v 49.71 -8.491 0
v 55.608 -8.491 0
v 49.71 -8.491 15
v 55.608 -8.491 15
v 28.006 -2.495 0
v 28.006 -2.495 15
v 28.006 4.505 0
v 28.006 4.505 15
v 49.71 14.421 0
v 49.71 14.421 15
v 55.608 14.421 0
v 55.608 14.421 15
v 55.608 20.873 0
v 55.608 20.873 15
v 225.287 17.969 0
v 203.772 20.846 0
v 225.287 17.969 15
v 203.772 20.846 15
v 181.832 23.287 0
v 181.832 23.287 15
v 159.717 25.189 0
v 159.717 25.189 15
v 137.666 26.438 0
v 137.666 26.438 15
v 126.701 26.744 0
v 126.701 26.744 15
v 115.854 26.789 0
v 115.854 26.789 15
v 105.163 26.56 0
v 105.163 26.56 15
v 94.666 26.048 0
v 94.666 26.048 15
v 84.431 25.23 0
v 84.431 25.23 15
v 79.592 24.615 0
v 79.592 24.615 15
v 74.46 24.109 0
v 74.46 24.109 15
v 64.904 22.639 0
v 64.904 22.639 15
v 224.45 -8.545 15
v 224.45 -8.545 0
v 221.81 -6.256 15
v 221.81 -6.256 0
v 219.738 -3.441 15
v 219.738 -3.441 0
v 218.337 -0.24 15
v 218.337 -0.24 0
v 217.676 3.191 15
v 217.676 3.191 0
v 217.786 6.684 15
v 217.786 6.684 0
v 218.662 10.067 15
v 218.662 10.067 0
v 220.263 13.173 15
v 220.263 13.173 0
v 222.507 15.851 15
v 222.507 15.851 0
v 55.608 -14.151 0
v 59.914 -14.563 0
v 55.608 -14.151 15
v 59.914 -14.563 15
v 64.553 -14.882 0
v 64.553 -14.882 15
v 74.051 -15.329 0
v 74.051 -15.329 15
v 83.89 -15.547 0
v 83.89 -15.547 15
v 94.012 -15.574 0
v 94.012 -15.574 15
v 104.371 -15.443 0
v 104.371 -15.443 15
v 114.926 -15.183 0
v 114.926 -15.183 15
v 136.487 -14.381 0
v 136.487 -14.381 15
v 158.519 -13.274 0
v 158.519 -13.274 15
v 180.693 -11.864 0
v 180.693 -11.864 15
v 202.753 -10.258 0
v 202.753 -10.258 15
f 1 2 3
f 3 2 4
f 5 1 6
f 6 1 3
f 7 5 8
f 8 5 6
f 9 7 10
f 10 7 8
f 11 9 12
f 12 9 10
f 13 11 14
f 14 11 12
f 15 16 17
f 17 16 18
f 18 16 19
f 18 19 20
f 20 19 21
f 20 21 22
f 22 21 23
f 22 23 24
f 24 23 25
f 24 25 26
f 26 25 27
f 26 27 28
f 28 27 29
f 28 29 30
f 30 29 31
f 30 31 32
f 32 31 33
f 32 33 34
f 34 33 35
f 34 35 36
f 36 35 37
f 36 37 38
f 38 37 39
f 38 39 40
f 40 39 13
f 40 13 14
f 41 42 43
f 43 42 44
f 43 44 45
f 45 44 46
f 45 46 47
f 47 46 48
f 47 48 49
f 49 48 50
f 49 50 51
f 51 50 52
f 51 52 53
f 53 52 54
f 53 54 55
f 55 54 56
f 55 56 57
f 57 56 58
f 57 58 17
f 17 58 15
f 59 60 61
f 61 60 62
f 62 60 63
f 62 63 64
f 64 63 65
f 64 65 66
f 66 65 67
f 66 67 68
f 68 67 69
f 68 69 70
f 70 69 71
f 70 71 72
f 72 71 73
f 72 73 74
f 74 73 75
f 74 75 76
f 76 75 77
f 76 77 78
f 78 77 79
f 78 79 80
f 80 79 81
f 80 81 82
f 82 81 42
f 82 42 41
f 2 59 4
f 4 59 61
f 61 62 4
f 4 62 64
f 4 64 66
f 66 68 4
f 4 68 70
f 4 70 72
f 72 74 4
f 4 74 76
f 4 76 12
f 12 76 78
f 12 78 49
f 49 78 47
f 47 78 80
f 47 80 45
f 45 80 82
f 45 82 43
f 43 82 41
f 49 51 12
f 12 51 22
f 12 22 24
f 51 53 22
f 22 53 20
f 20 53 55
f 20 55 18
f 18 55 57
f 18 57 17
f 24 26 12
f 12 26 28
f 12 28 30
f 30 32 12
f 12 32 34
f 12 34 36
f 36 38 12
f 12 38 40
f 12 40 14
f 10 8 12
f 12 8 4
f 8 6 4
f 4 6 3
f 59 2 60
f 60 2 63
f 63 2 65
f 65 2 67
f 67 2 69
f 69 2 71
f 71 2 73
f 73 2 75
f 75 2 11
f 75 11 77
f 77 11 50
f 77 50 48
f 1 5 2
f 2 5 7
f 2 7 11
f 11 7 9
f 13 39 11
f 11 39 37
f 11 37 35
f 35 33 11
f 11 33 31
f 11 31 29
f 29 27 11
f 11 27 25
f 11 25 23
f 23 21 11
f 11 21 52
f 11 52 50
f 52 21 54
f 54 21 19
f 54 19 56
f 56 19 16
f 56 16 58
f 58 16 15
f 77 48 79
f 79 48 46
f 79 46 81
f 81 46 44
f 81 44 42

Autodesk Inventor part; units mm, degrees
ref_plane "YZ Plane" through (0, 0, 0) normal (1, 0, 0) x (0, 1, 0)
ref_plane "XZ Plane" through (0, 0, 0) normal (0, 1, 0) x (-1, 0, 0)
ref_plane "XY Plane" through (0, 0, 0) normal (0, 0, 1) x (1, 0, 0)
sketch "Sketch2" plane through (0, 0, 0) normal (0, 0, 1) x (1, 0, 0)
  spline S0 degree 5 poles (319.6498, 0.0573) (319.6501, 0.0612) (319.6024, 0.0717) (319.3745, 0.1032) (319.3587, 0.1577) (318.7204, 0.2502) (318.4411, 0.3675) (317.6227, 0.5236) (316.9347, 0.7102) (315.9239, 0.9334) (314.8763, 1.1861) (313.6258, 1.4728) (312.2675, 1.7887) (310.7514, 2.1347) (309.1071, 2.5099) (307.3204, 2.9131) (305.4017, 3.3421) (303.3481, 3.7974) (301.1639, 4.2757) (298.8502, 4.7782) (296.4092, 5.301) (293.8432, 5.8446) (291.1548, 6.4061) (288.3466, 6.9857) (285.4207, 7.5803) (282.3807, 8.1894) (279.2284, 8.8107) (275.968, 9.4437) (272.6016, 10.0865) (269.1329, 10.7361) (265.5656, 11.3942) (261.9019, 12.0551) (258.1469, 12.7207) (254.3029, 13.3883) (250.3742, 14.0555) (246.3647, 14.7217) (242.2776, 15.3854) (238.118, 16.0441) (233.8887, 16.6979) (229.5952, 17.3434) (225.2402, 17.981) (220.8297, 18.6074) (216.3658, 19.2226) (211.8552, 19.8242) (207.3009, 20.4107) (202.7077, 20.9813) (198.0804, 21.5339) (193.4232, 22.0679) (188.7413, 22.58) (184.0389, 23.0713) (179.321, 23.5382) (174.592, 23.982) (169.8567, 24.3971) (165.1201, 24.7874) (160.3872, 25.1472) (155.6604, 25.4776) (150.948, 25.7772) (146.2454, 26.0449) (141.5744, 26.278) (136.9015, 26.4795) (132.2479, 26.6311) (127.6319, 26.7393) (123.054, 26.7999) (118.5202, 26.8147) (114.0397, 26.7815) (109.6094, 26.7031) (105.2517, 26.5723) (100.9331, 26.4088) (96.7495, 26.1663) (92.5147, 25.9483) (88.6376, 25.5343) (84.2302, 25.3974) (81.2071, 24.5612) (76.5297, 24.5259) (73.18, 23.8676) (69.3619, 23.413) (65.9721, 22.8018) (62.3454, 22.244) (59.4319, 21.514) (55.4307, 21.0148) (53.2464, 20.1084) (49.5889, 19.537) (47.2944, 18.6473) (44.3884, 17.909) (41.914, 17.071) (39.4431, 16.2394) (37.1538, 15.3738) (34.9769, 14.4941) (32.9455, 13.5944) (31.0501, 12.6807) (29.2961, 11.7542) (27.6837, 10.8151) (26.2149, 9.8673) (24.8895, 8.9103) (23.7099, 7.9467) (22.6751, 6.976) (21.7868, 6.0004) (21.0458, 5.0186) (20.4526, 4.032) (20.0117, 3.0392) (19.7221, 2.0438) (19.5893, 1.0479) (19.6118, 0.0538) (19.7865, -0.9258) (20.1138, -1.8742) (20.591, -2.7944) (21.2165, -3.6796) (21.9855, -4.5321) (22.8956, -5.3514) (23.9453, -6.1385) (25.1332, -6.8944) (26.4582, -7.6188) (27.9184, -8.3123) (29.5136, -8.9751) (31.2409, -9.6071) (33.0997, -10.2067) (35.0892, -10.7758) (37.2002, -11.3131) (39.4562, -11.8174) (41.7927, -12.2939) (44.3651, -12.7275) (46.7744, -13.1584) (50.0005, -13.481) (52.1533, -13.8927) (55.9371, -14.1294) (58.2153, -14.4717) (61.732, -14.6854) (64.8012, -14.9153) (68.2287, -15.092) (71.6338, -15.2498) (75.1915, -15.3722) (78.8138, -15.4692) (82.5326, -15.5359) (86.3291, -15.5764) (90.2061, -15.5901) (94.1575, -15.5787) (98.1812, -15.5438) (102.2727, -15.4851) (106.4286, -15.4059) (110.6456, -15.3062) (114.9188, -15.1867) (119.2459, -15.0512) (123.6218, -14.8988) (128.0442, -14.7319) (132.5111, -14.552) (137.0141, -14.3592) (141.5621, -14.1606) (146.1675, -13.9403) (150.787, -13.7052) (155.434, -13.4523) (160.0951, -13.1857) (164.7676, -12.9046) (169.4465, -12.6129) (174.1261, -12.3082) (178.8033, -11.9955) (183.4722, -11.6727) (188.1294, -11.3426) (192.7696, -11.0072) (197.3886, -10.6641) (201.9818, -10.3188) (206.5448, -9.9678) (211.0728, -9.6157) (215.5623, -9.2611) (220.0069, -8.9047) (224.4048, -8.5497) (228.7492, -8.193) (233.0373, -7.8393) (237.2647, -7.4865) (241.4259, -7.1353) (245.5189, -6.7884) (249.5374, -6.4441) (253.4791, -6.104) (257.3389, -5.7683) (261.1136, -5.4376) (264.7987, -5.113) (268.3914, -4.7937) (271.8871, -4.4807) (275.2826, -4.1749) (278.5752, -3.8759) (281.7596, -3.585) (284.8354, -3.3021) (287.7962, -3.0278) (290.6419, -2.763) (293.3672, -2.5063) (295.9712, -2.2616) (298.4496, -2.0246) (300.8012, -1.801) (303.0222, -1.5859) (305.1122, -1.3849) (307.0656, -1.194) (308.8864, -1.0166) (310.5623, -0.8504) (312.1091, -0.6993) (313.4945, -0.5587) (314.7717, -0.4371) (315.8415, -0.3205) (316.8737, -0.2329) (317.5782, -0.1363) (318.4119, -0.0906) (318.7016, -0.0103) (319.3493, -0.0034) (319.3699, 0.0485) (319.6005, 0.0494) (319.6495, 0.0534) (319.6498, 0.0573) knots 0 0 0 0 0 0 0.001406 0.002637 0.004353 0.006443 0.008834 0.011487 0.014375 0.017478 0.020781 0.02427 0.027934 0.031762 0.035746 0.039878 0.044151 0.048559 0.053094 0.057751 0.062526 0.067412 0.072404 0.077499 0.082692 0.087977 0.093351 0.098811 0.104351 0.109968 0.115658 0.121418 0.127243 0.133131 0.139077 0.145079 0.151132 0.157233 0.163379 0.169567 0.175793 0.182054 0.188346 0.194667 0.201013 0.20738 0.213767 0.220168 0.226582 0.233004 0.239433 0.245864 0.252294 0.258721 0.265141 0.27155 0.27795 0.284339 0.290715 0.297074 0.303413 0.309725 0.316005 0.32225 0.328456 0.33462 0.340739 0.34681 0.352829 0.358735 0.364639 0.370482 0.376261 0.381971 0.38767 0.393236 0.398773 0.404177 0.409526 0.414755 0.419891 0.424884 0.429828 0.434638 0.439375 0.444 0.448512 0.452907 0.457182 0.461332 0.465356 0.469251 0.473017 0.476652 0.480158 0.48354 0.486805 0.489964 0.493033 0.496034 0.498989 0.501921 0.504852 0.507807 0.510807 0.513873 0.517028 0.520286 0.523658 0.527152 0.530771 0.534516 0.538388 0.542384 0.546503 0.550741 0.555095 0.559563 0.56414 0.568856 0.57364 0.578576 0.583553 0.588622 0.593747 0.598989 0.604262 0.609667 0.615146 0.620698 0.626318 0.632003 0.637751 0.643558 0.649421 0.655338 0.661304 0.667318 0.673375 0.679474 0.685611 0.691783 0.697987 0.704223 0.710491 0.716788 0.723111 0.729457 0.73582 0.742195 0.748576 0.754963 0.761351 0.767737 0.774118 0.780492 0.786854 0.793202 0.799533 0.805843 0.812129 0.818388 0.824617 0.830812 0.836971 0.843089 0.849164 0.855191 0.861169 0.867092 0.872959 0.878764 0.884505 0.890178 0.895778 0.901303 0.906749 0.91211 0.917384 0.922566 0.927651 0.932635 0.937513 0.942281 0.946932 0.951462 0.955865 0.960134 0.964263 0.968244 0.97207 0.975732 0.979219 0.982521 0.985624 0.988511 0.991164 0.993554 0.995643 0.997359 0.998591 1 1 1 1 1 1
  line L0 (79.5135, 4.6359) -> (79.5135, 24.6083) construction
  line L1 (79.5135, 4.6359) -> (209.6498, 4.6359) construction
  line L2 (319.6498, 0.0573) -> (219.6498, 0.0573) construction
  line L3 (219.6499, 18.7671) -> (219.6499, -8.9327) construction
  line L4 (28.0055, 4.5054) -> (28.0055, -2.4946)
  line L5 (19.627, 1.0326) -> (319.6498, 0.0573) construction
  line L6 (49.7105, 14.4213) -> (55.6079, 14.4213)
  line L7 (49.7104, -8.4915) -> (55.6078, -8.4915)
  line L8 (28.0055, 4.5054) -> (49.7105, 14.4213)
  line L9 (28.0055, -2.4946) -> (49.7104, -8.4915)
  line L10 (55.6079, 14.4213) -> (55.6079, 20.8726)
  line L11 (55.6078, -8.4915) -> (55.6078, -14.1513)
  arc A0 (225.2869, 17.9694) -> (224.4503, -8.5446) centre (233.3969, 4.4433) ccw
  point P0 (0, 0)
  point P1 (319.3573, 0.1272)
  point P2 (318.9918, 0.2142)
  point P3 (318.4802, 0.3354)
  point P4 (317.8238, 0.4911)
  point P5 (317.0222, 0.6801)
  point P6 (316.0769, 0.9024)
  point P7 (314.9885, 1.1568)
  point P8 (313.7582, 1.443)
  point P9 (312.3866, 1.7598)
  point P10 (310.8752, 2.1063)
  point P11 (309.2258, 2.4819)
  point P12 (307.4393, 2.8854)
  point P13 (305.5178, 3.3153)
  point P14 (303.4628, 3.7707)
  point P15 (301.2764, 4.2501)
  point P16 (298.9607, 4.7526)
  point P17 (296.5175, 5.2764)
  point P18 (293.9492, 5.8203)
  point P19 (291.2585, 6.3828)
  point P20 (288.4478, 6.9627)
  point P21 (285.5195, 7.5582)
  point P22 (282.4766, 8.1678)
  point P23 (279.3218, 8.79)
  point P24 (276.0584, 9.4236)
  point P25 (272.6891, 10.0668)
  point P26 (269.2175, 10.7178)
  point P27 (265.6469, 11.3757)
  point P28 (261.9803, 12.0381)
  point P29 (258.2219, 12.7041)
  point P30 (254.3747, 13.3722)
  point P31 (250.4426, 14.0403)
  point P32 (246.4295, 14.7072)
  point P33 (242.339, 15.3714)
  point P34 (238.1756, 16.0311)
  point P35 (233.9428, 16.6851)
  point P36 (229.6454, 17.3316)
  point P37 (220.8723, 18.5967)
  point P38 (216.4049, 19.2123)
  point P39 (211.8901, 19.8144)
  point P40 (207.332, 20.4015)
  point P41 (202.7347, 20.9724)
  point P42 (198.1034, 21.5256)
  point P43 (193.4423, 22.0596)
  point P44 (188.7563, 22.5726)
  point P45 (184.0499, 23.0637)
  point P46 (179.3279, 23.5314)
  point P47 (174.5948, 23.9745)
  point P48 (169.8554, 24.3909)
  point P49 (165.1148, 24.7803)
  point P50 (160.3775, 25.1406)
  point P51 (155.6479, 25.4709)
  point P52 (150.9316, 25.7703)
  point P53 (146.233, 26.0373)
  point P54 (141.557, 26.2707)
  point P55 (136.882, 26.4681)
  point P56 (132.2209, 26.6211)
  point P57 (127.5964, 26.7282)
  point P58 (123.0133, 26.7888)
  point P59 (118.4761, 26.8026)
  point P60 (113.9902, 26.7693)
  point P61 (109.5601, 26.6886)
  point P62 (105.191, 26.5611)
  point P63 (100.8866, 26.3866)
  point P64 (96.6524, 26.1647)
  point P65 (92.4927, 25.8975)
  point P66 (88.4121, 25.5832)
  point P67 (84.4152, 25.2282)
  point P68 (80.9052, 24.7441)
  point P69 (76.6873, 24.3761)
  point P70 (72.9635, 23.8905)
  point P71 (69.3402, 23.3611)
  point P72 (65.8208, 22.7938)
  point P73 (62.4086, 22.1883)
  point P74 (59.107, 21.5464)
  point P75 (52.8493, 20.1606)
  point P76 (49.7105, 19.4213)
  point P77 (47.0737, 18.6507)
  point P78 (44.3741, 17.8542)
  point P79 (41.8034, 17.0322)
  point P80 (39.3638, 16.1874)
  point P81 (37.0583, 15.3213)
  point P82 (34.8884, 14.4363)
  point P83 (32.8568, 13.534)
  point P84 (30.965, 12.6166)
  point P85 (29.2145, 11.686)
  point P86 (27.6071, 10.7437)
  point P87 (26.1443, 9.7921)
  point P88 (24.8269, 8.8324)
  point P89 (23.6566, 7.8664)
  point P90 (22.6336, 6.8953)
  point P91 (21.7591, 5.9209)
  point P92 (21.0334, 4.9441)
  point P93 (20.4571, 3.9661)
  point P94 (20.0308, 2.9875)
  point P95 (19.7539, 2.0098)
  point P96 (19.6496, 0.0573)
  point P97 (19.8205, -0.9033)
  point P98 (20.1376, -1.8357)
  point P99 (20.6002, -2.7402)
  point P100 (21.208, -3.6159)
  point P101 (21.9598, -4.4628)
  point P102 (22.8544, -5.2806)
  point P103 (23.8909, -6.069)
  point P104 (25.0681, -6.8277)
  point P105 (26.3846, -7.5561)
  point P106 (27.8384, -8.2539)
  point P107 (29.4284, -8.9211)
  point P108 (31.1522, -9.5571)
  point P109 (33.0086, -10.1613)
  point P110 (34.9949, -10.734)
  point P111 (37.1093, -11.2746)
  point P112 (39.3497, -11.7828)
  point P113 (41.7134, -12.2586)
  point P114 (44.198, -12.702)
  point P115 (46.8014, -13.1127)
  point P116 (49.7104, -13.4915)
  point P117 (52.3532, -13.8357)
  point P118 (58.3469, -14.4294)
  point P119 (61.5023, -14.6781)
  point P120 (64.7591, -14.8953)
  point P121 (68.1149, -15.0813)
  point P122 (71.5661, -15.237)
  point P123 (75.1094, -15.3627)
  point P124 (78.7418, -15.4596)
  point P125 (82.46, -15.528)
  point P126 (86.2607, -15.5691)
  point P127 (90.14, -15.5838)
  point P128 (94.0946, -15.5733)
  point P129 (98.1212, -15.5388)
  point P130 (102.2159, -15.4812)
  point P131 (106.3751, -15.4023)
  point P132 (110.5952, -15.303)
  point P133 (114.872, -15.1845)
  point P134 (119.2022, -15.0489)
  point P135 (123.5813, -14.8971)
  point P136 (128.006, -14.7306)
  point P137 (132.4718, -14.5509)
  point P138 (136.9748, -14.3598)
  point P139 (141.5285, -14.1576)
  point P140 (146.1365, -13.9383)
  point P141 (150.7679, -13.7022)
  point P142 (155.4191, -13.4499)
  point P143 (160.0853, -13.1829)
  point P144 (164.7617, -12.9024)
  point P145 (169.4444, -12.6099)
  point P146 (174.1283, -12.306)
  point P147 (178.8092, -11.9925)
  point P148 (183.4823, -11.67)
  point P149 (188.1434, -11.34)
  point P150 (192.7877, -11.0037)
  point P151 (197.4106, -10.6614)
  point P152 (202.0079, -10.3149)
  point P153 (206.5747, -9.9645)
  point P154 (211.1069, -9.6117)
  point P155 (215.5999, -9.2568)
  point P156 (220.0489, -8.9007)
  point P157 (228.7987, -8.1885)
  point P158 (233.0906, -7.8339)
  point P159 (237.3214, -7.4808)
  point P160 (241.4866, -7.1298)
  point P161 (245.5828, -6.7821)
  point P162 (249.6052, -6.4377)
  point P163 (253.5502, -6.0972)
  point P164 (257.4136, -5.7612)
  point P165 (261.1915, -5.4303)
  point P166 (264.88, -5.1051)
  point P167 (268.4758, -4.7856)
  point P168 (271.9747, -4.4724)
  point P169 (275.3734, -4.1661)
  point P170 (278.6686, -3.867)
  point P171 (281.8564, -3.5757)
  point P172 (284.9344, -3.2925)
  point P173 (287.8984, -3.018)
  point P174 (290.7463, -2.7525)
  point P175 (293.4745, -2.4963)
  point P176 (296.0806, -2.2503)
  point P177 (298.5616, -2.0142)
  point P178 (300.9151, -1.7892)
  point P179 (303.1387, -1.575)
  point P180 (305.23, -1.3728)
  point P181 (307.1866, -1.1823)
  point P182 (309.007, -1.0041)
  point P183 (310.6885, -0.8385)
  point P184 (312.2302, -0.6861)
  point P185 (313.6297, -0.5472)
  point P186 (314.8861, -0.4221)
  point P187 (315.9976, -0.3108)
  point P188 (316.9636, -0.2139)
  point P189 (317.7826, -0.1314)
  point P190 (318.4537, -0.0636)
  point P191 (318.9766, -0.0108)
  point P192 (319.3503, 0.027)
  point P193 (319.5743, 0.0498)
  point P194 (209.6498, 0.0573)
  point P195 (28.0055, 1.0054)
  point P196 (217.627, 4.6359)
  dimension "d2" = 300.0001
  dimension "d19" = 110
  dimension "d22" = 100
  dimension "d23" = 7
  dimension "d24" = 5
  dimension "d25" = 5
  dimension "d44" = 198
  dimension "d46" = 59.8865
extrude "Extrusion6" add sketch "Sketch2" along normal blind 15 contours A0 S0 L11 L7 L9 L4 L8 L6 L10
properties part number "2414 basic aerofoil" material "Polyurethane Foam"
